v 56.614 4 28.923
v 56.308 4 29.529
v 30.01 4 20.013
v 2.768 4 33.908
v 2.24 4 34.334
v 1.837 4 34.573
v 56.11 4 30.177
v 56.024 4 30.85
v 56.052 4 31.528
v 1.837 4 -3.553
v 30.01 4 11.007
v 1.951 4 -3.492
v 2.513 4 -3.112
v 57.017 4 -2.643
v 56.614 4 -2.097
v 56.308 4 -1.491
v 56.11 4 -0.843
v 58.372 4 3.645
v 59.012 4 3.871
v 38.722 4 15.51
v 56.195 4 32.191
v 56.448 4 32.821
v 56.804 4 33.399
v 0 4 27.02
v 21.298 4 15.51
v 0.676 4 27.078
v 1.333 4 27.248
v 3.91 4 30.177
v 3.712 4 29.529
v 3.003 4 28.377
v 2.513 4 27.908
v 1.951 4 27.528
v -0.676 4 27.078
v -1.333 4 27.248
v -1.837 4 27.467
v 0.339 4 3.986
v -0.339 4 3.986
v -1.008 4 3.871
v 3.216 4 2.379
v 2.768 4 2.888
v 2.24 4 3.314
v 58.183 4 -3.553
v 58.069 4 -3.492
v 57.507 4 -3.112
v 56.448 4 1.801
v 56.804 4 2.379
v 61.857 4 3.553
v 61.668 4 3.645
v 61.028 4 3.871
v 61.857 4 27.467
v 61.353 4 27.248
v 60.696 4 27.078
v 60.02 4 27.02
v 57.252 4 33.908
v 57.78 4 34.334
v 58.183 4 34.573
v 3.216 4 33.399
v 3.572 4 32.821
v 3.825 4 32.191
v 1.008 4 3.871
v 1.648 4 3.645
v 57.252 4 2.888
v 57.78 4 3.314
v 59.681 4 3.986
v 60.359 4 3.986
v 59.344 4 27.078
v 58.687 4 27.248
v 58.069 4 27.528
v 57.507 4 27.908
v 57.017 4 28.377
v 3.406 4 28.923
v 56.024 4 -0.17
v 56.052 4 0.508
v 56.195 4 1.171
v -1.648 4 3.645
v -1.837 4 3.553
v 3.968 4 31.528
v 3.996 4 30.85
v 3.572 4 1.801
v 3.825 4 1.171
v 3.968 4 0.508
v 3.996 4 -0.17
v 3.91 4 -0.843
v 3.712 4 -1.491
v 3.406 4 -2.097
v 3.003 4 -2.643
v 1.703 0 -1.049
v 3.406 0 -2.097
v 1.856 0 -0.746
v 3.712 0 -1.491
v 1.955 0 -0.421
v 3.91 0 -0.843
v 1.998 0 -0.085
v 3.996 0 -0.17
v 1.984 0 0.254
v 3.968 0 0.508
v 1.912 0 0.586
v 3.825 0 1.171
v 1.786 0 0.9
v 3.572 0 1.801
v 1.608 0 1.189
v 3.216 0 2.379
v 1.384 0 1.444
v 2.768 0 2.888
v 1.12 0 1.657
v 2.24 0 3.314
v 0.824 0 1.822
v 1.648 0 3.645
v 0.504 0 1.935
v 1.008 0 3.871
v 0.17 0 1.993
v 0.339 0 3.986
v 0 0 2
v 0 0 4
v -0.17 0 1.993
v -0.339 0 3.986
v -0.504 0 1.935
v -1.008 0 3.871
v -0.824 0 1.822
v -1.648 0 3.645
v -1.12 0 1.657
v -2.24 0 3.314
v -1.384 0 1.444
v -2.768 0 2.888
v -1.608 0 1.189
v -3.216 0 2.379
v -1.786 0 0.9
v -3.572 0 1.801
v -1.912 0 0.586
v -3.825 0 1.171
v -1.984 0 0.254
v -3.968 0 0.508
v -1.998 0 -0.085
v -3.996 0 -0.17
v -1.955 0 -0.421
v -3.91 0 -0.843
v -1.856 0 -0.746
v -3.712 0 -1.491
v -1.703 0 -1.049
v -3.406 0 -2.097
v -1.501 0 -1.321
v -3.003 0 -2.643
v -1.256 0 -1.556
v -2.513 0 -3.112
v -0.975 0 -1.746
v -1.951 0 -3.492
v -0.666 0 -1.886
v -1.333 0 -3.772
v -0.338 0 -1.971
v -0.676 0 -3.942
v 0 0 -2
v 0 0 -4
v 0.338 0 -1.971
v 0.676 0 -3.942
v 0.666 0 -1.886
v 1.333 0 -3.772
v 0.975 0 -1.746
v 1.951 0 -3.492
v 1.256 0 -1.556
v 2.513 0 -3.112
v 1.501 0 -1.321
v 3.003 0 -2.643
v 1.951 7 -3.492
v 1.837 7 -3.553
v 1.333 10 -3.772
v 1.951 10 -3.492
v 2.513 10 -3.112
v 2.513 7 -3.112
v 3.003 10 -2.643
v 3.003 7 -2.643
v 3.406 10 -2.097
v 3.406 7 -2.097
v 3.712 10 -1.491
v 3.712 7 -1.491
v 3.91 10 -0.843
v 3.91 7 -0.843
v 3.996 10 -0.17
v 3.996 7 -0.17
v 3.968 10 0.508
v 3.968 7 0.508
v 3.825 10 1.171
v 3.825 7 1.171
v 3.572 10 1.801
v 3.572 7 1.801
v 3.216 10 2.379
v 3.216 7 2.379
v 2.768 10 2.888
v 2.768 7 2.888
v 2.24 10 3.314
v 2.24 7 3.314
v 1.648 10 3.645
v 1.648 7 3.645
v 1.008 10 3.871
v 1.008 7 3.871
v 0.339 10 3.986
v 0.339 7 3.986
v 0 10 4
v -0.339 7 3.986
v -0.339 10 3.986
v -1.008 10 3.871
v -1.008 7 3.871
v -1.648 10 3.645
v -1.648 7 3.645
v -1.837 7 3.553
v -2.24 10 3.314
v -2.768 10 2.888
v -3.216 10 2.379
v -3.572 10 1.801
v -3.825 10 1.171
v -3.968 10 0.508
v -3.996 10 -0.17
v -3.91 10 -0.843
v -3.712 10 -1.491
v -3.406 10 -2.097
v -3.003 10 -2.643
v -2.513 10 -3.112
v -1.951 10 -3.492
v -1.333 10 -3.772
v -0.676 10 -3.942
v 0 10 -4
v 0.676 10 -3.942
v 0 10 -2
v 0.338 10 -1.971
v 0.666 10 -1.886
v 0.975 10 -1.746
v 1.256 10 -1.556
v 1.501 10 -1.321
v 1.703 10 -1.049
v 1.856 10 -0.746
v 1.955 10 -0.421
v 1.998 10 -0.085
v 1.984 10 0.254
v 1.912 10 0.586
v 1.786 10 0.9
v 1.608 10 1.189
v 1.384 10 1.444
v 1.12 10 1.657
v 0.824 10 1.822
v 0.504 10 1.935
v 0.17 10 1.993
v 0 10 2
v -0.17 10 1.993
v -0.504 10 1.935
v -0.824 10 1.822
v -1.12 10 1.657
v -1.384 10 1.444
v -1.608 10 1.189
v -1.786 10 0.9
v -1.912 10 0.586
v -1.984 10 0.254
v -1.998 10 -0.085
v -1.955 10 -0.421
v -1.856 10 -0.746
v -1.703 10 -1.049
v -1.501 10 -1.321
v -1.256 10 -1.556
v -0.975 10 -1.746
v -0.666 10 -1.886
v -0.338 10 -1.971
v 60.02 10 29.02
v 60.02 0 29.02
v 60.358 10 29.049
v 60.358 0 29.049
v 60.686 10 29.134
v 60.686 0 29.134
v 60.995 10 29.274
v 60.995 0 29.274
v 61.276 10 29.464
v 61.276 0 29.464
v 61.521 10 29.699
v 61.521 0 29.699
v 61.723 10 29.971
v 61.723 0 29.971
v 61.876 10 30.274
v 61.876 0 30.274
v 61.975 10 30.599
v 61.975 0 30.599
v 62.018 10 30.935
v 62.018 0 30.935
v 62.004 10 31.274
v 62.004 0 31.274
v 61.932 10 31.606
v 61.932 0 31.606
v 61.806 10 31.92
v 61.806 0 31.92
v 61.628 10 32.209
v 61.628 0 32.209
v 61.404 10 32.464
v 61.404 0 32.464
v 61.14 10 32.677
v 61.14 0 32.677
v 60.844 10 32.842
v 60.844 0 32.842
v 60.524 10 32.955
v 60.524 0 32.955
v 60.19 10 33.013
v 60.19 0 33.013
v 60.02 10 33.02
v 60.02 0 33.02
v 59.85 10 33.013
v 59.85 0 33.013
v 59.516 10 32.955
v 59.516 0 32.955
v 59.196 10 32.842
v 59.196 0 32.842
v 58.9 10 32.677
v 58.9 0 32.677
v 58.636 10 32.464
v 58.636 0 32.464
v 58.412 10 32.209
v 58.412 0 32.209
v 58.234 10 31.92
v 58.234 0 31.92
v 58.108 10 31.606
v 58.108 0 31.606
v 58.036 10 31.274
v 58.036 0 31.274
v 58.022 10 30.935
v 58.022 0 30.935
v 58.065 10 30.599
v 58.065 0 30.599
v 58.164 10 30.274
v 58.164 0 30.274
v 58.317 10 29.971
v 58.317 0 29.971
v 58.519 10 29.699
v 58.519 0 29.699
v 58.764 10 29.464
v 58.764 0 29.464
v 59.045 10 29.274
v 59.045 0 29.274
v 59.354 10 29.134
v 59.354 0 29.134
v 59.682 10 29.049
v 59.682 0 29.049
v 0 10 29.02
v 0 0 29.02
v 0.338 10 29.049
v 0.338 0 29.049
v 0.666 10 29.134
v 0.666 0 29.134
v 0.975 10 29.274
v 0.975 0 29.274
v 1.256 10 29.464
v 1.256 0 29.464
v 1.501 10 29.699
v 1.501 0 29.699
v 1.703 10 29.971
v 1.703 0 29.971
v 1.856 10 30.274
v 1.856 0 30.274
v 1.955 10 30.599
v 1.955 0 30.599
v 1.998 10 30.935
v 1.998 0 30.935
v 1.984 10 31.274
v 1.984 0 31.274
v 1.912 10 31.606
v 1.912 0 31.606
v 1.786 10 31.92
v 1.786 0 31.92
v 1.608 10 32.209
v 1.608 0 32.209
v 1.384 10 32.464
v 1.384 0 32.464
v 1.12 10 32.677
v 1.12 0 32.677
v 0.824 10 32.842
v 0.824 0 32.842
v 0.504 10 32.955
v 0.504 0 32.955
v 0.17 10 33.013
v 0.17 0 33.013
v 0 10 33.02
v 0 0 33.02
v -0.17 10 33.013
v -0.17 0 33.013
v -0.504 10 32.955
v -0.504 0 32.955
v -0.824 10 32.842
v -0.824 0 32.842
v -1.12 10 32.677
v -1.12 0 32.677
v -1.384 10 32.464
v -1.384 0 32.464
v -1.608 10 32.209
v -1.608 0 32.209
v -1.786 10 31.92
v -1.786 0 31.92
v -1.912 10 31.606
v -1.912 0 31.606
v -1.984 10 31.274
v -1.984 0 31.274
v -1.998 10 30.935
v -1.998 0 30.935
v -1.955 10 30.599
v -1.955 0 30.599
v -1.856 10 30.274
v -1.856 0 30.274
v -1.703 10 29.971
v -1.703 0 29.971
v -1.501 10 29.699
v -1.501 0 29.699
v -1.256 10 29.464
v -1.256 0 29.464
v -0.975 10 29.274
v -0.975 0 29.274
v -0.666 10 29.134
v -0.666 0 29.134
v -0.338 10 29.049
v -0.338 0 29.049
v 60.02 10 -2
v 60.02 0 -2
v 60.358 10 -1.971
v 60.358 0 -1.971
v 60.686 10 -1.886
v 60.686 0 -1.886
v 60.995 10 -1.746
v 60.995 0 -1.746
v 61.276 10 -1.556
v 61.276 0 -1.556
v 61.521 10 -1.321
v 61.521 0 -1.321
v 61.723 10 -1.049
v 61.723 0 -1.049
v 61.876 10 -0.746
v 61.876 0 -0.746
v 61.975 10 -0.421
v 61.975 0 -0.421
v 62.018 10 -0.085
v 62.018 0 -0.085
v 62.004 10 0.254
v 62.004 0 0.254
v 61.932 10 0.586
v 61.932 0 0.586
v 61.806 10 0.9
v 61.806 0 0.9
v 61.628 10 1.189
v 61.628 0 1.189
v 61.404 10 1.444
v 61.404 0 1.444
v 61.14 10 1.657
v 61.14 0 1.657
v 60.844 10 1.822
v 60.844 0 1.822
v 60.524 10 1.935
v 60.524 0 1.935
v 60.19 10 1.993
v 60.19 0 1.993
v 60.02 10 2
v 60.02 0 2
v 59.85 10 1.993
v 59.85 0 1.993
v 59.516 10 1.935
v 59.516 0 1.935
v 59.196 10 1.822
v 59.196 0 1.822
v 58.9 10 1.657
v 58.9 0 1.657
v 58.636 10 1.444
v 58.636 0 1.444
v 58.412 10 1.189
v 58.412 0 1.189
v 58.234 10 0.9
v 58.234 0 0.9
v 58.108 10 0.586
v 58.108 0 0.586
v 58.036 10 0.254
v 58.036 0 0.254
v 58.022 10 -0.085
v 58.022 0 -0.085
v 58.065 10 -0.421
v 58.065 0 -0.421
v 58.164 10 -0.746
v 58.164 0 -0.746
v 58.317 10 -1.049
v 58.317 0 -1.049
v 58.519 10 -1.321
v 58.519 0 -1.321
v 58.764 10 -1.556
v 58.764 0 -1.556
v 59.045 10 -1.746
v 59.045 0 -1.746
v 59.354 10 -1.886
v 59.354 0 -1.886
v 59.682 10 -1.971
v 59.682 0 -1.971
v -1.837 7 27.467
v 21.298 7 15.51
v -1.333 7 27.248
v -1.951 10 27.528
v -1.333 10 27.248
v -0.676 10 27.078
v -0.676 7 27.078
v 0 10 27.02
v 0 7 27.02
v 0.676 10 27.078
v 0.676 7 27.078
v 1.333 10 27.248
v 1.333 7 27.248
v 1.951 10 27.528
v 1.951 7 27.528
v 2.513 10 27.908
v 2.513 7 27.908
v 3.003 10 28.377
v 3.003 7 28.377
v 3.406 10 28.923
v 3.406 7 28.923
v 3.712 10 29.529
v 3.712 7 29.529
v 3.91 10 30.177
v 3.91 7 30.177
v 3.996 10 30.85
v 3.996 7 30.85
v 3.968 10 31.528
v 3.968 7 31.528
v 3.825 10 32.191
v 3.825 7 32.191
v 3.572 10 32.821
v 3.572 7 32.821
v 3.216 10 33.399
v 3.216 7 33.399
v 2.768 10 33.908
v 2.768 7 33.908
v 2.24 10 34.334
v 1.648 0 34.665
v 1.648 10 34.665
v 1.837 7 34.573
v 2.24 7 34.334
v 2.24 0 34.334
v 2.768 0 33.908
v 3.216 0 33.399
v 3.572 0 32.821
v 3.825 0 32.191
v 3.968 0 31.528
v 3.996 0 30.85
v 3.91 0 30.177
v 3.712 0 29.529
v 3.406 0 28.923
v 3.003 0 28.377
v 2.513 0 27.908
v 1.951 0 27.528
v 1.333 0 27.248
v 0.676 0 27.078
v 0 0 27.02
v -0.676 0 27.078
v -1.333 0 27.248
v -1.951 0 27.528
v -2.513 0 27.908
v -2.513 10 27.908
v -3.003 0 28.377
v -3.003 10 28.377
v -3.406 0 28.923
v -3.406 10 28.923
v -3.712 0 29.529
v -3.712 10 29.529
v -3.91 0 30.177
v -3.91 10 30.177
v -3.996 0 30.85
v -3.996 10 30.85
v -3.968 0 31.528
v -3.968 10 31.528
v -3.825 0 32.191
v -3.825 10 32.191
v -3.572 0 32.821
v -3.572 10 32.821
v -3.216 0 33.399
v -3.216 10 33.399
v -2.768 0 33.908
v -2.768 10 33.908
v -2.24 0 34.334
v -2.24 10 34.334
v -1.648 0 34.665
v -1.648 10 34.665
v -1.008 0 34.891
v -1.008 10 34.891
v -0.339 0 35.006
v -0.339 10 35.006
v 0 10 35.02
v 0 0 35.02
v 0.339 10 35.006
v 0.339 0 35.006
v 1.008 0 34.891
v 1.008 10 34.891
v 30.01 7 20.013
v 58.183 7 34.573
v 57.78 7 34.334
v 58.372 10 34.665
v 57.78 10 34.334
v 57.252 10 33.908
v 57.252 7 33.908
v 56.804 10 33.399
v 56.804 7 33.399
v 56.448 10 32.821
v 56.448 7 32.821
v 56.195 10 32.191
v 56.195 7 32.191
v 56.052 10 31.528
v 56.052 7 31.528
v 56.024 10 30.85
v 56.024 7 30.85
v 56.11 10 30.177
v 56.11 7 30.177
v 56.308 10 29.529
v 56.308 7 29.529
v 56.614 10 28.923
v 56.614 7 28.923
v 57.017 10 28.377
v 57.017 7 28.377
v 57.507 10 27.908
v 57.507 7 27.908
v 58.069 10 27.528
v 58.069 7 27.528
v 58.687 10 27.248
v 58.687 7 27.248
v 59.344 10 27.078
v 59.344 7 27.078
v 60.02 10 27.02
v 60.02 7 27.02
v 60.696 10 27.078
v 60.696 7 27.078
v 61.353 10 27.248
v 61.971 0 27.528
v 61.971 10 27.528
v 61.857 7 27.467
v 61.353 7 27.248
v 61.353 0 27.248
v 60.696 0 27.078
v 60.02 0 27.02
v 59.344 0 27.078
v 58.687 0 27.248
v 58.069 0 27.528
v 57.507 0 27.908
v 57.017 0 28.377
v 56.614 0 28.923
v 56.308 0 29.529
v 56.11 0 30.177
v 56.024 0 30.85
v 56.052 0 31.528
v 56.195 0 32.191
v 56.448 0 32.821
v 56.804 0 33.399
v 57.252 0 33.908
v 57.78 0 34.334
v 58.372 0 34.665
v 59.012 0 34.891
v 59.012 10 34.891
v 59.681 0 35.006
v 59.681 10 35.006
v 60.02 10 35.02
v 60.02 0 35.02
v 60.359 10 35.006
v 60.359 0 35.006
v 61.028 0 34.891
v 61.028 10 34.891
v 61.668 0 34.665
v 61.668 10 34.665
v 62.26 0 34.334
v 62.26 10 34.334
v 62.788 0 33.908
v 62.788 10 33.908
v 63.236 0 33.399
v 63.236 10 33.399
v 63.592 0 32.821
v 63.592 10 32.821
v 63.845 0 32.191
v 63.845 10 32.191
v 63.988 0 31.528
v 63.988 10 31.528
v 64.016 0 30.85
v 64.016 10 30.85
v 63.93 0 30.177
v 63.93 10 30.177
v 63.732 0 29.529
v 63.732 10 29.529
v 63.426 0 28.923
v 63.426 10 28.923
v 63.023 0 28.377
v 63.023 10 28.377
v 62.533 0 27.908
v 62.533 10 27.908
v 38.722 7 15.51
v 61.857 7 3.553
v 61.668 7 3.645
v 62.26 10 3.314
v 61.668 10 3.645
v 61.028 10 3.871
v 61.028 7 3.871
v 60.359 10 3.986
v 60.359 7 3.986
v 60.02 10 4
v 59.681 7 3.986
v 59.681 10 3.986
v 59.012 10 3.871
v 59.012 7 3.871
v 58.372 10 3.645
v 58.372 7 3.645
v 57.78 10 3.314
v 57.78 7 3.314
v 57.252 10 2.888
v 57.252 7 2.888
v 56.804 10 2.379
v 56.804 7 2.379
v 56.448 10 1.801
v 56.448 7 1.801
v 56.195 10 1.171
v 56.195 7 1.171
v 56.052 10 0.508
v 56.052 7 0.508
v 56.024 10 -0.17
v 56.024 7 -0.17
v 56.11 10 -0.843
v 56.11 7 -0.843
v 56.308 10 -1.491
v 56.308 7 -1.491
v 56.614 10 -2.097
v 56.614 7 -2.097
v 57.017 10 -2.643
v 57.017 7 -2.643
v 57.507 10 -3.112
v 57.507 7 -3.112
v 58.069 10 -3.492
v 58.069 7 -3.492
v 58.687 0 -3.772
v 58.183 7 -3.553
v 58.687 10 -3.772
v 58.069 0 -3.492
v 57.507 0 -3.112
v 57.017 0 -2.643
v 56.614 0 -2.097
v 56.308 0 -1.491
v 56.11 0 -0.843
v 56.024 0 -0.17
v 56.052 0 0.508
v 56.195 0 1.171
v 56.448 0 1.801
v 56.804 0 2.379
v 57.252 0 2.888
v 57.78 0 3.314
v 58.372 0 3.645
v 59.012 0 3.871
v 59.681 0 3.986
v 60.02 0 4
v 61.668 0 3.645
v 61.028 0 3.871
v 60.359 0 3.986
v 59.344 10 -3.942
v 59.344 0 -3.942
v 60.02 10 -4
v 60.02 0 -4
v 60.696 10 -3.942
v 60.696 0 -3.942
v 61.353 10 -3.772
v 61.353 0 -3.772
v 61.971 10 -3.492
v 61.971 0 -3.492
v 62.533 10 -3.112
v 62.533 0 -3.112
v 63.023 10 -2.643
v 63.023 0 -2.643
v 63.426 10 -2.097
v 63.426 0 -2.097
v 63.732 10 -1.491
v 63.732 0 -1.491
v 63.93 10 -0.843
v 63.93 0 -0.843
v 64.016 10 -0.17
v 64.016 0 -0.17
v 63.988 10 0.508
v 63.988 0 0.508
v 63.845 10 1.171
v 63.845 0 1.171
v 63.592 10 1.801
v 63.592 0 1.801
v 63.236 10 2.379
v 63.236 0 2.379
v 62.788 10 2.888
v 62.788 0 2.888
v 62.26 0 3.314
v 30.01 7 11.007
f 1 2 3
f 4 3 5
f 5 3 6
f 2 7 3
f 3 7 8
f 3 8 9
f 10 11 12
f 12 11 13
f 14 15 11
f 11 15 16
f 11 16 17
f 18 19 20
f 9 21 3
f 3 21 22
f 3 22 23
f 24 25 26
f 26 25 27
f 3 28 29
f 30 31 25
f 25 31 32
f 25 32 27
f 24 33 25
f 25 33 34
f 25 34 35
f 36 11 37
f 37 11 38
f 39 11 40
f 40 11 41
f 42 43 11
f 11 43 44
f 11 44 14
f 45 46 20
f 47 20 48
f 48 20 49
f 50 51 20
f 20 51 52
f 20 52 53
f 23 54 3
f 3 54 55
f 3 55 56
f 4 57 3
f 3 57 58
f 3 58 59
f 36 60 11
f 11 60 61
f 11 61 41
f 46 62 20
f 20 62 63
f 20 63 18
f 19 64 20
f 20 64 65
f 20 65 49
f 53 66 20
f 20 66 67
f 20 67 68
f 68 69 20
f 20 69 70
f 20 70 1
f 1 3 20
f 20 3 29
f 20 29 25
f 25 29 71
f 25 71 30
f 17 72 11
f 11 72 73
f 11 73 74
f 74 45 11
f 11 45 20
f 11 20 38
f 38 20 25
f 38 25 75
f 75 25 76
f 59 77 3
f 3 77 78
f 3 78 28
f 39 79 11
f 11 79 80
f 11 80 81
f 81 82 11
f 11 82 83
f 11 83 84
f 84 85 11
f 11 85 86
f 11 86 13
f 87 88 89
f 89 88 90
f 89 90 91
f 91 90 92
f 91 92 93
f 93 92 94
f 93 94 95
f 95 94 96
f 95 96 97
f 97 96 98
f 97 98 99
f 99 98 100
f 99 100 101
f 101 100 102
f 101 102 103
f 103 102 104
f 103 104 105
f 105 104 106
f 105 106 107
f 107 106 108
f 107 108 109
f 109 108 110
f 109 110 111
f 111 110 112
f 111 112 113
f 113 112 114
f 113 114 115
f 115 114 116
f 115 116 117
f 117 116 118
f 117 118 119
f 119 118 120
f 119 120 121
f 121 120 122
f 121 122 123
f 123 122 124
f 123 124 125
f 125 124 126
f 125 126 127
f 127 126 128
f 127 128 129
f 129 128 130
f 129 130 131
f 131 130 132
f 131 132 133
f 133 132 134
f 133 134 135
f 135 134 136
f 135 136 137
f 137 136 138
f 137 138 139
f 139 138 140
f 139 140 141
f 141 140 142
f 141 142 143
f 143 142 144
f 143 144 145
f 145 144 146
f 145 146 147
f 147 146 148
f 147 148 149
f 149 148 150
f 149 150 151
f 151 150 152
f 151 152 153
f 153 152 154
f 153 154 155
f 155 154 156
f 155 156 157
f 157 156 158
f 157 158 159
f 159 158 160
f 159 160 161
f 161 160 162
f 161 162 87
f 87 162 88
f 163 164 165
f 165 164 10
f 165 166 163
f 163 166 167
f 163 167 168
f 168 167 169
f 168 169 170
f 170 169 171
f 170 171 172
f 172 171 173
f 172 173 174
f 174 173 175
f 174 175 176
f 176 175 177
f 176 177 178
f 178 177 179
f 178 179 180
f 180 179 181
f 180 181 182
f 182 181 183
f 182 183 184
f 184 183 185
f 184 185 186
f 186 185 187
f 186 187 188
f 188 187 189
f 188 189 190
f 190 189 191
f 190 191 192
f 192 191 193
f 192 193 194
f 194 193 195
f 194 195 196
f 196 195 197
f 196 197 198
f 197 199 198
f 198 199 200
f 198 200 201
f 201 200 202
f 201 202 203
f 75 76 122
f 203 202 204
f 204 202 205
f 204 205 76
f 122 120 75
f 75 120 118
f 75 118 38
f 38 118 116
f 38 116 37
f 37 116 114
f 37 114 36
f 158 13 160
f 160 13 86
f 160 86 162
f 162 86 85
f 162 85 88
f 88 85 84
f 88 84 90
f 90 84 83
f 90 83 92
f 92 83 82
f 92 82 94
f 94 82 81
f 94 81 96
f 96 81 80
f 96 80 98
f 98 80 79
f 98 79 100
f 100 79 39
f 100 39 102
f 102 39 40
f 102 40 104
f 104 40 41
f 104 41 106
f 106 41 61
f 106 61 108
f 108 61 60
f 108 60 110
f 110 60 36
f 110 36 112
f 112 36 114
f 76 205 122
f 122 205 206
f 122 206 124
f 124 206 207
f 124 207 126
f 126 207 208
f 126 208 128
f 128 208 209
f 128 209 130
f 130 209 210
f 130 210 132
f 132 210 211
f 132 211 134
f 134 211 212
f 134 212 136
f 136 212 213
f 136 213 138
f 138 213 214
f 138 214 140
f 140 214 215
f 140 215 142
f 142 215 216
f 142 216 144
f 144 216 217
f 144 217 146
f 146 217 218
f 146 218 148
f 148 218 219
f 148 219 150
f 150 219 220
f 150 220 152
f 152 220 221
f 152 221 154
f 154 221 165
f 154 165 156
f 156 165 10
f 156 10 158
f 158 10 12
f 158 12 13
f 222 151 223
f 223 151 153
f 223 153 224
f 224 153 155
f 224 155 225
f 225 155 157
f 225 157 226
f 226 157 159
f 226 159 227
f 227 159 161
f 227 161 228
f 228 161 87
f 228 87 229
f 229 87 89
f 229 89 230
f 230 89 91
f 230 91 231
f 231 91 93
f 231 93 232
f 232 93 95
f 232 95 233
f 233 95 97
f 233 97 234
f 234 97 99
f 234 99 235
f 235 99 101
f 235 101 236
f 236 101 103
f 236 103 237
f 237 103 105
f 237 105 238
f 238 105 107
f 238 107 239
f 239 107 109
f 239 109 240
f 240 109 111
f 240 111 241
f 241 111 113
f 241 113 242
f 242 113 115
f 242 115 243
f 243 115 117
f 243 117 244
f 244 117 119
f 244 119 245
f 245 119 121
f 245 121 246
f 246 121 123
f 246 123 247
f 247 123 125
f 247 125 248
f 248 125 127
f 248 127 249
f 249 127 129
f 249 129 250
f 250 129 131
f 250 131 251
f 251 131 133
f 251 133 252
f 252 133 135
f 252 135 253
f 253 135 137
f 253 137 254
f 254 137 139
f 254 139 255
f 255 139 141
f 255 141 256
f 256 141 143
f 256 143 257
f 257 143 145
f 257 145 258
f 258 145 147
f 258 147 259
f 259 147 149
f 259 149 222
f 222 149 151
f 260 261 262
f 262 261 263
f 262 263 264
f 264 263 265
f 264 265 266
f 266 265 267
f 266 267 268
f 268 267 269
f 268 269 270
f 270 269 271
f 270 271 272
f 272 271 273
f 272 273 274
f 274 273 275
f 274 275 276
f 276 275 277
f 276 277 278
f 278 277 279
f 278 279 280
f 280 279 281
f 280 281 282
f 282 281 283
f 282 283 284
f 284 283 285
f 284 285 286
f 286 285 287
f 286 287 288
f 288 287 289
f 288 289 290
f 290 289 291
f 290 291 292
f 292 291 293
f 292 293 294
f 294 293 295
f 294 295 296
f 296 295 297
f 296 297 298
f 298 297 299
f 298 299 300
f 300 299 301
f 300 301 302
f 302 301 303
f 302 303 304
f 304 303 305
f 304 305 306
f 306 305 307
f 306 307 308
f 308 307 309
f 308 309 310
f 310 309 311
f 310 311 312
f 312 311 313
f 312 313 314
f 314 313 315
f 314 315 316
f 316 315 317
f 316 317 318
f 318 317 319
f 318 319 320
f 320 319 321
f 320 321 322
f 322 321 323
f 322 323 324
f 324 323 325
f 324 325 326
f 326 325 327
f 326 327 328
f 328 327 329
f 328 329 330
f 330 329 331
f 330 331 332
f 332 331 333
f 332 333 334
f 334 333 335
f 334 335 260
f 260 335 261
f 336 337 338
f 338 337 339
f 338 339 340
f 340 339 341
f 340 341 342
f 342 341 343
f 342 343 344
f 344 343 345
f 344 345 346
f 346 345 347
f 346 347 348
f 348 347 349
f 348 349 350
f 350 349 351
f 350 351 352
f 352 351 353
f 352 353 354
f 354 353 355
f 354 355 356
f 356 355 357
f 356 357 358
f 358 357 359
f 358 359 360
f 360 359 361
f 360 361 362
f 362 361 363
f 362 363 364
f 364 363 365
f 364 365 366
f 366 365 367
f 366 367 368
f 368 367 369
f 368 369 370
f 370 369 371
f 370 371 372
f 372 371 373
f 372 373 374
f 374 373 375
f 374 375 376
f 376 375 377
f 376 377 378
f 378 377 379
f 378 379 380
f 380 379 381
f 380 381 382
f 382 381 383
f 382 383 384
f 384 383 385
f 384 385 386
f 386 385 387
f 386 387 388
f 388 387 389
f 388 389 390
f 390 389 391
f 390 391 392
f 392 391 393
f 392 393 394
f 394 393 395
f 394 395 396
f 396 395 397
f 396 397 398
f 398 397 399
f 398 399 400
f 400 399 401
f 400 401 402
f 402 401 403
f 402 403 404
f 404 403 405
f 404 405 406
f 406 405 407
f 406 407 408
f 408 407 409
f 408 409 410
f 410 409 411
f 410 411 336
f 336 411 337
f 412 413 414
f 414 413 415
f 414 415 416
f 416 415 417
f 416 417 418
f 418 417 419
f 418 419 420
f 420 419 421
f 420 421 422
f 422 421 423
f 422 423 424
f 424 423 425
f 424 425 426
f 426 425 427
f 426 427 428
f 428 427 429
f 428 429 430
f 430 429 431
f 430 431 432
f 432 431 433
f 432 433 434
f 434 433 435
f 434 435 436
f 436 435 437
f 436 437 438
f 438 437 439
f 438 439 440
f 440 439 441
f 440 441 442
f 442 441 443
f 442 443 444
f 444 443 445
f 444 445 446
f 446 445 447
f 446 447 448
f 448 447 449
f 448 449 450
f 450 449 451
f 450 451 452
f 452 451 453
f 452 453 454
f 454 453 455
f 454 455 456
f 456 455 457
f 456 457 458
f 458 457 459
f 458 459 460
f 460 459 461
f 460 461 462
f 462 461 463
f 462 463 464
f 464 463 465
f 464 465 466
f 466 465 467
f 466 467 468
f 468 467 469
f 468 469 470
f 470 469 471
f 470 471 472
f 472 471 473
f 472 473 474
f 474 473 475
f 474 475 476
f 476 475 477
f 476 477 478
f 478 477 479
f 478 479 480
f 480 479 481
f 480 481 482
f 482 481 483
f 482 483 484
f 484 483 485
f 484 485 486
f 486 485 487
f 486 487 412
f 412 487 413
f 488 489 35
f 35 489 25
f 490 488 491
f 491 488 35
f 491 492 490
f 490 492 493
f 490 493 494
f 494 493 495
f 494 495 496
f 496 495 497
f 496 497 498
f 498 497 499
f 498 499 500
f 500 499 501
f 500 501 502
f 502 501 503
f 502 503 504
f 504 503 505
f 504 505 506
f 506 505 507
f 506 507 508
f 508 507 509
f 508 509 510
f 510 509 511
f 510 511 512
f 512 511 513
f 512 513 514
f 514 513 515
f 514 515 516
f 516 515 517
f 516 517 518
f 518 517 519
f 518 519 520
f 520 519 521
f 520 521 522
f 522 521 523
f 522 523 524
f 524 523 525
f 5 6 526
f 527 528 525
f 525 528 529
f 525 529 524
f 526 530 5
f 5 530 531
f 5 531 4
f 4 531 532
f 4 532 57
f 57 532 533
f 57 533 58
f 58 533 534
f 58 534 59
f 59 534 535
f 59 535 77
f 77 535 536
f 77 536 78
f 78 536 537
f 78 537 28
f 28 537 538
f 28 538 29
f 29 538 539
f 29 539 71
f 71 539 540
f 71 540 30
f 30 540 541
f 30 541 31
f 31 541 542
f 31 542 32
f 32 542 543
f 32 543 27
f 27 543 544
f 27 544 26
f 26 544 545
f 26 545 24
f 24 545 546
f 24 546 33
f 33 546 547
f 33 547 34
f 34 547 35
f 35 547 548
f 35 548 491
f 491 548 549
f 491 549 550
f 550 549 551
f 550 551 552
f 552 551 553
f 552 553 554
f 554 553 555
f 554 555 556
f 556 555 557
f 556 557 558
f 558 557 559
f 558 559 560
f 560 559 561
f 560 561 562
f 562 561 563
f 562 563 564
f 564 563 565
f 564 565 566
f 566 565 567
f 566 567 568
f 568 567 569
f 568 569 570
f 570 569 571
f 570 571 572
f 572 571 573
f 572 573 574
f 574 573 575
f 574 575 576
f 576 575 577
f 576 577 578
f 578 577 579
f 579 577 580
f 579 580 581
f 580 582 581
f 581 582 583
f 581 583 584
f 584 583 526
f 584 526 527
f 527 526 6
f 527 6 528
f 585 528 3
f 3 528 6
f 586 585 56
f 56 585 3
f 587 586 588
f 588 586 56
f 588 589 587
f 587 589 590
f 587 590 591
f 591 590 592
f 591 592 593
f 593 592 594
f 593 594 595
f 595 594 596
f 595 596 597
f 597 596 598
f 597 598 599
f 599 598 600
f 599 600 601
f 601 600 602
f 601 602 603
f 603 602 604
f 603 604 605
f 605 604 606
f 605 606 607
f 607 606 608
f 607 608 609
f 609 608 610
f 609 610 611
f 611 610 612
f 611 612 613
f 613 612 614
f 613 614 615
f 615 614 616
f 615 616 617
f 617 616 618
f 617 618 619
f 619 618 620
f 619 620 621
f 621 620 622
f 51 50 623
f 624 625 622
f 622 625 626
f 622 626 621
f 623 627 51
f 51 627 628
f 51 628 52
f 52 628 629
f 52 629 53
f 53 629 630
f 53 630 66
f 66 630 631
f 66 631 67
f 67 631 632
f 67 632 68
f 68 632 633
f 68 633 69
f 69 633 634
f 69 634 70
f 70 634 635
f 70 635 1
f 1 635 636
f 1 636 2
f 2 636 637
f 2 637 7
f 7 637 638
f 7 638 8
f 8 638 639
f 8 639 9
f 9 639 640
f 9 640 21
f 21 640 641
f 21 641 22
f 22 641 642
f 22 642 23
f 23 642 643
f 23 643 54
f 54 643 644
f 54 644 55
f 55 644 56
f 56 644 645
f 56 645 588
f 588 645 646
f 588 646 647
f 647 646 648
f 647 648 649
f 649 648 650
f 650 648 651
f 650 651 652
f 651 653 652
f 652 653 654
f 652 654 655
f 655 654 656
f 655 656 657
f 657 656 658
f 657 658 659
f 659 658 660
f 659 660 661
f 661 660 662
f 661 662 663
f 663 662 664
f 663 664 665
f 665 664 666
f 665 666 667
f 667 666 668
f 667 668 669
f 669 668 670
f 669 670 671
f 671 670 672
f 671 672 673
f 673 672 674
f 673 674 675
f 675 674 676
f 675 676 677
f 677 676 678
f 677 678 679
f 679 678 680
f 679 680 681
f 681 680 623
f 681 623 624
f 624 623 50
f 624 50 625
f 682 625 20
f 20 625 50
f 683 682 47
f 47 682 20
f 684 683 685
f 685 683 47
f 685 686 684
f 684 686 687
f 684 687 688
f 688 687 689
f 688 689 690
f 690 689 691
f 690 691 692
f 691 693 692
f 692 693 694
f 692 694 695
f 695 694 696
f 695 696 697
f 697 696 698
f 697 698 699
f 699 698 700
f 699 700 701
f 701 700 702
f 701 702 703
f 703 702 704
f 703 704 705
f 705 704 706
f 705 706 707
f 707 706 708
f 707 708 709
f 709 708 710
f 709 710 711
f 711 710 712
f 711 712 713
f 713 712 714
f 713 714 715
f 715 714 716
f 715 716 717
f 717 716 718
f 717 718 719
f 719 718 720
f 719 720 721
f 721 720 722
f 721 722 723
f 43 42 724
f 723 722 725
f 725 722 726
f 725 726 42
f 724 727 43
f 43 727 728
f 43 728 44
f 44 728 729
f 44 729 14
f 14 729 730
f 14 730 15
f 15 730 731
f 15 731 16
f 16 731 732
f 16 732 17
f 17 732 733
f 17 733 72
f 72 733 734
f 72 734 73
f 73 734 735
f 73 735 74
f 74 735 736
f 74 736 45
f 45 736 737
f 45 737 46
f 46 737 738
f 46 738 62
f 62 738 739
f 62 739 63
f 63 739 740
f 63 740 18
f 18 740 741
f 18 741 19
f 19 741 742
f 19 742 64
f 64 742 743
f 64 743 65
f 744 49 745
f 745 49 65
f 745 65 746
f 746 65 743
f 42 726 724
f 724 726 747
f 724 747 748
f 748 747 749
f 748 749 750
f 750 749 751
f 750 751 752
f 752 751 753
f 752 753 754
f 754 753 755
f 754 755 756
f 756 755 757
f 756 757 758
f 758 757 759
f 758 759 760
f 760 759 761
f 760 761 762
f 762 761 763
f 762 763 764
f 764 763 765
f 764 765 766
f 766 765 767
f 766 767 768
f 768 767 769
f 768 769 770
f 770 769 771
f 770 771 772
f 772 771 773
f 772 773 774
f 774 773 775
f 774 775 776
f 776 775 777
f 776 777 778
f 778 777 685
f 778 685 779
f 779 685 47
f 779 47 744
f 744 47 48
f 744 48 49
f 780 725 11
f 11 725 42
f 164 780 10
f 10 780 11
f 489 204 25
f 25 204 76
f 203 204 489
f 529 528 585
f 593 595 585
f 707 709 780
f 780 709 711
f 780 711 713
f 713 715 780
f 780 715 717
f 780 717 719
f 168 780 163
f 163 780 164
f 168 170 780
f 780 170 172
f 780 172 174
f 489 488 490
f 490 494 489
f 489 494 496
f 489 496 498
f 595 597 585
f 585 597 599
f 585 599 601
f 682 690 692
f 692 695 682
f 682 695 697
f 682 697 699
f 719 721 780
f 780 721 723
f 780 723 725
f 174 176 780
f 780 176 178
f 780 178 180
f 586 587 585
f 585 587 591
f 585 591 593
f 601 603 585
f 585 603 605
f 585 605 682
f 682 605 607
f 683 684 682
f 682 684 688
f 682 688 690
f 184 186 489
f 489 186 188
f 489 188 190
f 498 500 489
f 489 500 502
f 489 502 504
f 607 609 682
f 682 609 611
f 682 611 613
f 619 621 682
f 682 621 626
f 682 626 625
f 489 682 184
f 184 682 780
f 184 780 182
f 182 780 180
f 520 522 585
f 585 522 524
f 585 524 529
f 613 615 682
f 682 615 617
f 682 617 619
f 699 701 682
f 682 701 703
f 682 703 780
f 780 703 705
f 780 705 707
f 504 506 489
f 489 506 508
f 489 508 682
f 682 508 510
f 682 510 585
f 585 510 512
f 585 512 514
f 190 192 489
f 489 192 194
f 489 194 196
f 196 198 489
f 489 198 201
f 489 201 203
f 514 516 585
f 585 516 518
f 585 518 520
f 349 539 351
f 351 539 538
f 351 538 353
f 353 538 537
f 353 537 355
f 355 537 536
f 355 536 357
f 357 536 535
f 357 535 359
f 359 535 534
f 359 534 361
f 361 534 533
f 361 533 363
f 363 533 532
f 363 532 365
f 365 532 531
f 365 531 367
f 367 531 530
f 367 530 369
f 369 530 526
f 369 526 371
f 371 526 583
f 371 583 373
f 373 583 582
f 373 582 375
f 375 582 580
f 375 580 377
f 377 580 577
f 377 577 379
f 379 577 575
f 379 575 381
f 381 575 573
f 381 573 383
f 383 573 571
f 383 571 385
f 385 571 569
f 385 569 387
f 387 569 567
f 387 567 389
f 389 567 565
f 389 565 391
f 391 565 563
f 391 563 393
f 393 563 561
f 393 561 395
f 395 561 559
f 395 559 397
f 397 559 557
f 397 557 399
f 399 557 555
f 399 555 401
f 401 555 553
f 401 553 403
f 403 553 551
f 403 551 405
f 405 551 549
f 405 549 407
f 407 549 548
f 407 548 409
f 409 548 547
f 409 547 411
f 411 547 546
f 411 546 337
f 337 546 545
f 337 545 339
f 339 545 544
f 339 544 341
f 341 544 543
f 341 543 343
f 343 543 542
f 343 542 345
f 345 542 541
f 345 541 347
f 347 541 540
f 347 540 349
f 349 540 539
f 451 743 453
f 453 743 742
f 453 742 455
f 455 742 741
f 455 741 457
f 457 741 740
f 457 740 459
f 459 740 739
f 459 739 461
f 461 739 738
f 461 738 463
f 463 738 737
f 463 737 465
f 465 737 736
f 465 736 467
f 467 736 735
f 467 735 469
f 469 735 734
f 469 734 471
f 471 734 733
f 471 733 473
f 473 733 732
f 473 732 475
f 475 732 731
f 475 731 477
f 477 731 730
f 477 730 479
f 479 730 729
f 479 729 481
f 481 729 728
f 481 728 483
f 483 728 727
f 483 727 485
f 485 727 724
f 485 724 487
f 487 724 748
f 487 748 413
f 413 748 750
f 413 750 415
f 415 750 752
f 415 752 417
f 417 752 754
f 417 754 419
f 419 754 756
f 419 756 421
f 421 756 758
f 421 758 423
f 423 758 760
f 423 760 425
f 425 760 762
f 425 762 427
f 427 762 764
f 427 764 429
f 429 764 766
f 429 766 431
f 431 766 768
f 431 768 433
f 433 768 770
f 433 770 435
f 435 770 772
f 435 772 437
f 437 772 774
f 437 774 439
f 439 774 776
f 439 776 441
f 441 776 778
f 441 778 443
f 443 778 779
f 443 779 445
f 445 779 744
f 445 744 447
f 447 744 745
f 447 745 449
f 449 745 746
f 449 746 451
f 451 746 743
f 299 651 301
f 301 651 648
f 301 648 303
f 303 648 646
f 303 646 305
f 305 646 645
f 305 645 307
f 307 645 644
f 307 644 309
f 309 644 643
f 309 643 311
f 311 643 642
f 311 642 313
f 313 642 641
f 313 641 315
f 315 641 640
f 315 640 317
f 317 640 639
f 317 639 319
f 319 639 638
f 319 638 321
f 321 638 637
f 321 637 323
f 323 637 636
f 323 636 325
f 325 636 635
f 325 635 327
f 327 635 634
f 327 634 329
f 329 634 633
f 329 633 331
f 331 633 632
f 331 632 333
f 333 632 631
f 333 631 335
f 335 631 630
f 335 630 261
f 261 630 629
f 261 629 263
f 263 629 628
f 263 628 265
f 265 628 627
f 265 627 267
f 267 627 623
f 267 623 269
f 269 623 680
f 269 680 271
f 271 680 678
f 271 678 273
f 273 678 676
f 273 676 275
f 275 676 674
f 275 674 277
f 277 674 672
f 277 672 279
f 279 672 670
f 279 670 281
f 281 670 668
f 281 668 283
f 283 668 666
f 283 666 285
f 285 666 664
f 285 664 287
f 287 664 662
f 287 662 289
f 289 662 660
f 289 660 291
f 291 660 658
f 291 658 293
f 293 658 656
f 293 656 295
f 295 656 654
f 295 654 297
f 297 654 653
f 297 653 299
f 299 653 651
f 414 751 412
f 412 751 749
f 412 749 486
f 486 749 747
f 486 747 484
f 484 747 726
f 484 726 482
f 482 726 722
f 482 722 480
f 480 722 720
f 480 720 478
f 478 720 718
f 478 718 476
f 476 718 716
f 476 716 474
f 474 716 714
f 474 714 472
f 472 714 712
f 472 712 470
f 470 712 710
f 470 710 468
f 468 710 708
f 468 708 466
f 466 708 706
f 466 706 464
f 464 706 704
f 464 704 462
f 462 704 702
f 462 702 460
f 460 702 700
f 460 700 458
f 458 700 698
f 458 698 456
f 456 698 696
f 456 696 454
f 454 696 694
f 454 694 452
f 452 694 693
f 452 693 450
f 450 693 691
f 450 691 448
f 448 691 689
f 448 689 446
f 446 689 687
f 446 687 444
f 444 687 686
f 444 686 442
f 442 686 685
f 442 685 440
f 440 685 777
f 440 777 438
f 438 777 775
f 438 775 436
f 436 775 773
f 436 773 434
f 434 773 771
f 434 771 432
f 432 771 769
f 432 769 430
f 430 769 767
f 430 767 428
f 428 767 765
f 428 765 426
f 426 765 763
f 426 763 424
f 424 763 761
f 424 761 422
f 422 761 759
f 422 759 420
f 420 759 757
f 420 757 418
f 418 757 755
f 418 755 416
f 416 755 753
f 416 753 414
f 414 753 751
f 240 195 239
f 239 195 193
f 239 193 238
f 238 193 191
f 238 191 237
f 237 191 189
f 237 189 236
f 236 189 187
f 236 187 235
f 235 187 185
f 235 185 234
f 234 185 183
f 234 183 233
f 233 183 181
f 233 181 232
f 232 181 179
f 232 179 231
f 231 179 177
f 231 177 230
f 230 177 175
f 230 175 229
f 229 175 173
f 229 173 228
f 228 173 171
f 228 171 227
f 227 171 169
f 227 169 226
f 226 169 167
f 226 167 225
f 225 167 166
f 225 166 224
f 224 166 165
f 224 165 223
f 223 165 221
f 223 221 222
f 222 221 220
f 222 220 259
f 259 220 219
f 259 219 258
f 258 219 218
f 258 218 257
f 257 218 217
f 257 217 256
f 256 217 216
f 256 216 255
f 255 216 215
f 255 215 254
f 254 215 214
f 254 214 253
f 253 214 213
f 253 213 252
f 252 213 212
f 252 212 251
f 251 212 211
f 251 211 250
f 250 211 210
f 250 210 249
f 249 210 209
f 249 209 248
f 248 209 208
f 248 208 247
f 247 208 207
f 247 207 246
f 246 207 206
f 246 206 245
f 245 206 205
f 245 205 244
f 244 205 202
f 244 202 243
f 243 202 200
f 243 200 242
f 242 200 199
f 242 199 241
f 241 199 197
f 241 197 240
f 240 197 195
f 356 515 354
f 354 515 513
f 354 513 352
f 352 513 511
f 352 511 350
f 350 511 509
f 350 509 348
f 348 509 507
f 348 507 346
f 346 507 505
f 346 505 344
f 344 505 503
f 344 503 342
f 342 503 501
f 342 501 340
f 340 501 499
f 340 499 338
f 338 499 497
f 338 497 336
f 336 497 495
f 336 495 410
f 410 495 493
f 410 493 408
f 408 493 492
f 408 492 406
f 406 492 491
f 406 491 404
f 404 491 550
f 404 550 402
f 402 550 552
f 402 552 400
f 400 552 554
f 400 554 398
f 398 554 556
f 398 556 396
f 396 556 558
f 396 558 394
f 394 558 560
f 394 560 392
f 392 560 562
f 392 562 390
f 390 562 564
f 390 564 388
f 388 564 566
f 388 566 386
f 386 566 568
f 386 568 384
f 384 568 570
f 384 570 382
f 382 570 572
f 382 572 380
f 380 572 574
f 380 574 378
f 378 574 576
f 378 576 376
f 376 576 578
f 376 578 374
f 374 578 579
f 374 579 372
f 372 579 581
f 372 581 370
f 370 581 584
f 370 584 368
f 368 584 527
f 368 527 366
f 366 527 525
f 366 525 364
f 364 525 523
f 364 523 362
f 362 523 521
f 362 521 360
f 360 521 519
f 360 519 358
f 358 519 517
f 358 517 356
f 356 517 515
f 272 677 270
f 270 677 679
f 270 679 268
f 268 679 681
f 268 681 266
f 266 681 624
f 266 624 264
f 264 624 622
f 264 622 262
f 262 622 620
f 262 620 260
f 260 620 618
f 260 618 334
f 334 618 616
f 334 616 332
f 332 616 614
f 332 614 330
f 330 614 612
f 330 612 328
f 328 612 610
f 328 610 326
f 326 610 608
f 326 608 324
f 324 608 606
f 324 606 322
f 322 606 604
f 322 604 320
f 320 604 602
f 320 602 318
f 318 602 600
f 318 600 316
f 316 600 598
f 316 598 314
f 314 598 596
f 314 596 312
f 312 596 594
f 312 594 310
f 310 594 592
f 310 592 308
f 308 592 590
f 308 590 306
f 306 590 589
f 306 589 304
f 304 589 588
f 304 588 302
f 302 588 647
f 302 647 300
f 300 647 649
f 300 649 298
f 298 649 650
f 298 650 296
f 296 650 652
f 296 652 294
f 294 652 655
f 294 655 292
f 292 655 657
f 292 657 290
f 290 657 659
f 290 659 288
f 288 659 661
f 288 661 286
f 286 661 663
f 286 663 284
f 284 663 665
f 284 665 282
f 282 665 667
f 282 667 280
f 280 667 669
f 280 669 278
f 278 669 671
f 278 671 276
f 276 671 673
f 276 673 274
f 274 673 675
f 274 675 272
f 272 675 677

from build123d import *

# Parameters (mm, degrees)
CROQUIS1_R                = 4
CROQUIS1_R_2              = 2
SALIENTE_EXTRUIR1_DEPTH   = 4
SALIENTE_EXTRUIR1_2_DEPTH = 4
SALIENTE_EXTRUIR1_3_DEPTH = 4
SALIENTE_EXTRUIR1_4_DEPTH = 4
SALIENTE_EXTRUIR1_5_DEPTH = 4
CROQUIS3_R                = 2
SALIENTE_EXTRUIR4_DEPTH   = 3
CROQUIS4_R                = 4
CROQUIS4_R_2              = 2
CORTAR_EXTRUIR1_DEPTH     = 4
CROQUIS5_R                = 2
SALIENTE_EXTRUIR5_DEPTH   = 3
CROQUIS6_R                = 4
CROQUIS6_R_2              = 2
SALIENTE_EXTRUIR6_DEPTH   = 3


with BuildPart() as part:
    # Croquis1 → Saliente-Extruir1 (new body)
    with BuildSketch(Plane(origin=(0, 0, 0), x_dir=(1, 0, 0), z_dir=(0, 1, 0))):
        Circle(CROQUIS1_R)
        Circle(CROQUIS1_R_2, mode=Mode.SUBTRACT)
    extrude(amount=SALIENTE_EXTRUIR1_DEPTH)



with BuildPart() as body_2:
    # Croquis1 → Saliente-Extruir1 2 (new body)
    with BuildSketch(Plane(origin=(0, 0, 0), x_dir=(1, 0, 0), z_dir=(0, 1, 0))):
        with Locations((60.02, 0)):
            Circle(CROQUIS1_R)
        with Locations((60.02, 0)):
            Circle(CROQUIS1_R_2, mode=Mode.SUBTRACT)
    extrude(amount=SALIENTE_EXTRUIR1_2_DEPTH)


with BuildPart() as body_3:
    # Croquis1 → Saliente-Extruir1 3 (new body)
    with BuildSketch(Plane(origin=(0, 0, 0), x_dir=(1, 0, 0), z_dir=(0, 1, 0))):
        with Locations((60.02, -31.02)):
            Circle(CROQUIS1_R)
        with Locations((60.02, -31.02)):
            Circle(CROQUIS1_R_2, mode=Mode.SUBTRACT)
    extrude(amount=SALIENTE_EXTRUIR1_3_DEPTH)


with BuildPart() as body_4:
    # Croquis1 → Saliente-Extruir1 4 (new body)
    with BuildSketch(Plane(origin=(0, 0, 0), x_dir=(1, 0, 0), z_dir=(0, 1, 0))):
        with Locations((0, -31.02)):
            Circle(CROQUIS1_R)
        with Locations((0, -31.02)):
            Circle(CROQUIS1_R_2, mode=Mode.SUBTRACT)
    extrude(amount=SALIENTE_EXTRUIR1_4_DEPTH)


with BuildPart() as body_5:
    # Croquis1 → Saliente-Extruir1 5 (new body)
    with BuildSketch(Plane(origin=(0, 0, 0), x_dir=(1, 0, 0), z_dir=(0, 1, 0))):
        with Locations((30.01, -15.51)):
            Circle(CROQUIS1_R)
        with Locations((30.01, -15.51)):
            Circle(CROQUIS1_R_2, mode=Mode.SUBTRACT)
    extrude(amount=SALIENTE_EXTRUIR1_5_DEPTH)

    # Croquis4 → Cortar-Extruir1 (cut)
    with BuildSketch(Plane.XZ):
        with Locations((30.01, 15.51)):
            Circle(CROQUIS4_R)
        with Locations((30.01, 15.51)):
            Circle(CROQUIS4_R_2, mode=Mode.SUBTRACT)
    extrude(amount=-CORTAR_EXTRUIR1_DEPTH, mode=Mode.SUBTRACT)


with BuildPart() as part_1:
    add(part.part)

    add(body_4.part)  # Saliente-Extruir4 merges body 4

    add(body_2.part)  # Saliente-Extruir4 merges body 2

    add(body_3.part)  # Saliente-Extruir4 merges body 3
    # Croquis3 → Saliente-Extruir4 (add)
    with BuildSketch(Plane(origin=(0, 4, 0), x_dir=(1, 0, 0), z_dir=(0, 1, 0))):
        with BuildLine():
            Line((21.297927081, -15.51), (-1.836531919, -27.466529793))
            ThreePointArc((-1.836531919, -27.466529793), (-3.553470207, -32.856531919), (1.836531919, -34.573470207))
            Line((1.836531919, -34.573470207), (30.01, -20.012640819))
            Line((30.01, -20.012640819), (58.183468081, -34.573470207))
            ThreePointArc((58.183468081, -34.573470207), (63.573470207, -32.856531919), (61.856531919, -27.466529793))
            Line((61.856531919, -27.466529793), (38.722072919, -15.51))
            Line((38.722072919, -15.51), (61.856531919, -3.553470207))
            ThreePointArc((61.856531919, -3.553470207), (63.573470207, 1.836531919), (58.183468081, 3.553470207))
            Line((58.183468081, 3.553470207), (30.01, -11.007359181))
            Line((30.01, -11.007359181), (1.836531919, 3.553470207))
            ThreePointArc((1.836531919, 3.553470207), (-3.553470207, 1.836531919), (-1.836531919, -3.553470207))
            Line((-1.836531919, -3.553470207), (21.297927081, -15.51))
        make_face()
        with BuildLine():
            ThreePointArc((28.01, -15.51), (28.595786438, -14.095786438), (30.01, -13.51))
            ThreePointArc((30.01, -13.51), (31.424213562, -16.924213562), (28.01, -15.51))
        make_face(mode=Mode.SUBTRACT)
        with Locations((0, -31.02)):
            Circle(CROQUIS3_R, mode=Mode.SUBTRACT)
        Circle(CROQUIS3_R, mode=Mode.SUBTRACT)
        with Locations((60.02, 0)):
            Circle(CROQUIS3_R, mode=Mode.SUBTRACT)
        with Locations((60.02, -31.02)):
            Circle(CROQUIS3_R, mode=Mode.SUBTRACT)
    extrude(amount=SALIENTE_EXTRUIR4_DEPTH)

    # Croquis5 → Saliente-Extruir5 (add)
    with BuildSketch(Plane.XZ.offset(-4)):
        with Locations((30.01, 15.51)):
            Circle(CROQUIS5_R)
    extrude(amount=-SALIENTE_EXTRUIR5_DEPTH)

    # Croquis6 → Saliente-Extruir6 (add)
    # profile 1 of 4: a face of its own
    with BuildSketch(Plane(origin=(0, 7, 0), x_dir=(1, 0, 0), z_dir=(0, 1, 0))):
        with Locations((60.02, 0)):
            Circle(CROQUIS6_R)
        with Locations((60.02, 0)):
            Circle(CROQUIS6_R_2, mode=Mode.SUBTRACT)
    # profile 2 of 4: a face of its own
    with BuildSketch(Plane(origin=(0, 7, 0), x_dir=(1, 0, 0), z_dir=(0, 1, 0))):
        Circle(CROQUIS6_R)
        Circle(CROQUIS6_R_2, mode=Mode.SUBTRACT)
    # profile 3 of 4: a face of its own
    with BuildSketch(Plane(origin=(0, 7, 0), x_dir=(1, 0, 0), z_dir=(0, 1, 0))):
        with Locations((0, -31.02)):
            Circle(CROQUIS6_R)
        with Locations((0, -31.02)):
            Circle(CROQUIS6_R_2, mode=Mode.SUBTRACT)
    # profile 4 of 4: a face of its own
    with BuildSketch(Plane(origin=(0, 7, 0), x_dir=(1, 0, 0), z_dir=(0, 1, 0))):
        with Locations((60.02, -31.02)):
            Circle(CROQUIS6_R)
        with Locations((60.02, -31.02)):
            Circle(CROQUIS6_R_2, mode=Mode.SUBTRACT)
    extrude(amount=SALIENTE_EXTRUIR6_DEPTH)


solid = part_1.part
